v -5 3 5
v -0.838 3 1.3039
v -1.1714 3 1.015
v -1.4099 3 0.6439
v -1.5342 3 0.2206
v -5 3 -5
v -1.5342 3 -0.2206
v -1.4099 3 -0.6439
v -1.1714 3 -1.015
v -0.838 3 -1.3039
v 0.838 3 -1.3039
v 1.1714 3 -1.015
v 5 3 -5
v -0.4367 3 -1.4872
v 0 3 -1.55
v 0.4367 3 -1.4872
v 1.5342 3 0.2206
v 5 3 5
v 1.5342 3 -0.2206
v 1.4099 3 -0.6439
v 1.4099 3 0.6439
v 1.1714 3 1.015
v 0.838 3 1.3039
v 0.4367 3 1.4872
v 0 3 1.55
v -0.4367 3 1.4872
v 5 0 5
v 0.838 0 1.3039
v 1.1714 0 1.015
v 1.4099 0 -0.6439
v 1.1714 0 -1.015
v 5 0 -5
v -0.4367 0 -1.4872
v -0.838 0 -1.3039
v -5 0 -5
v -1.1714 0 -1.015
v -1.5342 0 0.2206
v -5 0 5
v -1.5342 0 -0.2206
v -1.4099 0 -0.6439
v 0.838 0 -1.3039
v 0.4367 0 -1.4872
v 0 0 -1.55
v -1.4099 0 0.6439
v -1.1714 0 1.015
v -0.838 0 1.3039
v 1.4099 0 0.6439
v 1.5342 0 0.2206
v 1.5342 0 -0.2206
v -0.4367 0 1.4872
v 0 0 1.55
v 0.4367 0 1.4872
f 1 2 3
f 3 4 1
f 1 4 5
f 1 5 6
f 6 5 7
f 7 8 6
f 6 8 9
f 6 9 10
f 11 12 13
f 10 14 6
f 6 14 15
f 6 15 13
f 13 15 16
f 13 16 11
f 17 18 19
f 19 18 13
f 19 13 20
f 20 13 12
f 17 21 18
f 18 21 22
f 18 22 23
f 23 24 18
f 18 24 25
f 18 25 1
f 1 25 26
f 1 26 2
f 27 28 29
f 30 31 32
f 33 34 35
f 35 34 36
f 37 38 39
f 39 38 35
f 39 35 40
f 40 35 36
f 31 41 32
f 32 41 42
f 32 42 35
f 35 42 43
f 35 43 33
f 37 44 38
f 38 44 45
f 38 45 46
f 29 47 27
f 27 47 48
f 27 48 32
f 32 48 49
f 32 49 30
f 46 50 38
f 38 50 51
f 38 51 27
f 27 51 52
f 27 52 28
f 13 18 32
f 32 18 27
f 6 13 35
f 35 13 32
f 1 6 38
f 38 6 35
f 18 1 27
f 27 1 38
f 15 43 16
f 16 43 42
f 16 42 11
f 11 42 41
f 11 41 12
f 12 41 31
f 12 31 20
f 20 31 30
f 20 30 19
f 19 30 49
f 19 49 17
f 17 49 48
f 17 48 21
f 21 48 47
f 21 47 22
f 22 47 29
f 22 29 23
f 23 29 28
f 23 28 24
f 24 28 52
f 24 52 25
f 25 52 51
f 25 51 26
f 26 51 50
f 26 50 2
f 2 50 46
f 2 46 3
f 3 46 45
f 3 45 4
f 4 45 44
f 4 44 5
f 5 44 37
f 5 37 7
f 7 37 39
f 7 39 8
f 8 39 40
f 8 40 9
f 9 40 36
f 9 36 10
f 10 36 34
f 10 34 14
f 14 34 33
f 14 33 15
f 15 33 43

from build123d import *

# Parameters (mm, degrees)
CROQUIS1_W              = 10
CROQUIS1_H              = 10
CROQUIS1_R              = 1.55
SALIENTE_EXTRUIR1_DEPTH = 3


with BuildPart() as part:
    # Croquis1 → Saliente-Extruir1 (new body)
    with BuildSketch(Plane(origin=(0, 0, 0), x_dir=(1, 0, 0), z_dir=(0, 1, 0))):
        Rectangle(CROQUIS1_W, CROQUIS1_H)
        with Locations(Location((0, 0, 0), (0, 0, 270))):
            Circle(CROQUIS1_R, mode=Mode.SUBTRACT)
    extrude(amount=SALIENTE_EXTRUIR1_DEPTH)


solid = part.part
